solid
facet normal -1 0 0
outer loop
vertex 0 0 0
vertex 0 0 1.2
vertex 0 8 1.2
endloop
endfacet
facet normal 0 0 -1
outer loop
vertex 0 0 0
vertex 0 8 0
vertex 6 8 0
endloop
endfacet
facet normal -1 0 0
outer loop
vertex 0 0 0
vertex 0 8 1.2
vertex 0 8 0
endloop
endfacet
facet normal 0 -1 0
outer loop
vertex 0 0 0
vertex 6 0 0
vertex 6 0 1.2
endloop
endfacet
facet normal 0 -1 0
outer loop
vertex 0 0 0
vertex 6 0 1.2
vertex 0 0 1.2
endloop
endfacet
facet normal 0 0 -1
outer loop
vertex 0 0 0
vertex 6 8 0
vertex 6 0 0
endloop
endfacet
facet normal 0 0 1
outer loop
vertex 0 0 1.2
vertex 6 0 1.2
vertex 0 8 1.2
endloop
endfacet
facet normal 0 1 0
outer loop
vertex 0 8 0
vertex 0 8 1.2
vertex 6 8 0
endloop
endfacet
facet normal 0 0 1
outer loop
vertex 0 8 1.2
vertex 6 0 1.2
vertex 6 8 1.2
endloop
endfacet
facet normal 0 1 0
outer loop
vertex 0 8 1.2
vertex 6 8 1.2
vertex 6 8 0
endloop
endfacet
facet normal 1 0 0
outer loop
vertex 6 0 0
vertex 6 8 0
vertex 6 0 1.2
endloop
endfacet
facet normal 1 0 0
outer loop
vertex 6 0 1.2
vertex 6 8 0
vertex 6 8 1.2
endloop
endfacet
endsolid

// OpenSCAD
/* Warning, this is a very basic generator with a lot of approximation 
input data : [TFBGA, 8SW, 6x8x1.2mm, 24, , A, C04-00671A]
generated by com.zoubworld.electronics.cad.model3d.Basic
Date : Sun Feb 15 10:50:49 CET 2026
*/

//body
color("black")
translate([0,0,0])
cube([6.0,8.0,1.2], center=false);
